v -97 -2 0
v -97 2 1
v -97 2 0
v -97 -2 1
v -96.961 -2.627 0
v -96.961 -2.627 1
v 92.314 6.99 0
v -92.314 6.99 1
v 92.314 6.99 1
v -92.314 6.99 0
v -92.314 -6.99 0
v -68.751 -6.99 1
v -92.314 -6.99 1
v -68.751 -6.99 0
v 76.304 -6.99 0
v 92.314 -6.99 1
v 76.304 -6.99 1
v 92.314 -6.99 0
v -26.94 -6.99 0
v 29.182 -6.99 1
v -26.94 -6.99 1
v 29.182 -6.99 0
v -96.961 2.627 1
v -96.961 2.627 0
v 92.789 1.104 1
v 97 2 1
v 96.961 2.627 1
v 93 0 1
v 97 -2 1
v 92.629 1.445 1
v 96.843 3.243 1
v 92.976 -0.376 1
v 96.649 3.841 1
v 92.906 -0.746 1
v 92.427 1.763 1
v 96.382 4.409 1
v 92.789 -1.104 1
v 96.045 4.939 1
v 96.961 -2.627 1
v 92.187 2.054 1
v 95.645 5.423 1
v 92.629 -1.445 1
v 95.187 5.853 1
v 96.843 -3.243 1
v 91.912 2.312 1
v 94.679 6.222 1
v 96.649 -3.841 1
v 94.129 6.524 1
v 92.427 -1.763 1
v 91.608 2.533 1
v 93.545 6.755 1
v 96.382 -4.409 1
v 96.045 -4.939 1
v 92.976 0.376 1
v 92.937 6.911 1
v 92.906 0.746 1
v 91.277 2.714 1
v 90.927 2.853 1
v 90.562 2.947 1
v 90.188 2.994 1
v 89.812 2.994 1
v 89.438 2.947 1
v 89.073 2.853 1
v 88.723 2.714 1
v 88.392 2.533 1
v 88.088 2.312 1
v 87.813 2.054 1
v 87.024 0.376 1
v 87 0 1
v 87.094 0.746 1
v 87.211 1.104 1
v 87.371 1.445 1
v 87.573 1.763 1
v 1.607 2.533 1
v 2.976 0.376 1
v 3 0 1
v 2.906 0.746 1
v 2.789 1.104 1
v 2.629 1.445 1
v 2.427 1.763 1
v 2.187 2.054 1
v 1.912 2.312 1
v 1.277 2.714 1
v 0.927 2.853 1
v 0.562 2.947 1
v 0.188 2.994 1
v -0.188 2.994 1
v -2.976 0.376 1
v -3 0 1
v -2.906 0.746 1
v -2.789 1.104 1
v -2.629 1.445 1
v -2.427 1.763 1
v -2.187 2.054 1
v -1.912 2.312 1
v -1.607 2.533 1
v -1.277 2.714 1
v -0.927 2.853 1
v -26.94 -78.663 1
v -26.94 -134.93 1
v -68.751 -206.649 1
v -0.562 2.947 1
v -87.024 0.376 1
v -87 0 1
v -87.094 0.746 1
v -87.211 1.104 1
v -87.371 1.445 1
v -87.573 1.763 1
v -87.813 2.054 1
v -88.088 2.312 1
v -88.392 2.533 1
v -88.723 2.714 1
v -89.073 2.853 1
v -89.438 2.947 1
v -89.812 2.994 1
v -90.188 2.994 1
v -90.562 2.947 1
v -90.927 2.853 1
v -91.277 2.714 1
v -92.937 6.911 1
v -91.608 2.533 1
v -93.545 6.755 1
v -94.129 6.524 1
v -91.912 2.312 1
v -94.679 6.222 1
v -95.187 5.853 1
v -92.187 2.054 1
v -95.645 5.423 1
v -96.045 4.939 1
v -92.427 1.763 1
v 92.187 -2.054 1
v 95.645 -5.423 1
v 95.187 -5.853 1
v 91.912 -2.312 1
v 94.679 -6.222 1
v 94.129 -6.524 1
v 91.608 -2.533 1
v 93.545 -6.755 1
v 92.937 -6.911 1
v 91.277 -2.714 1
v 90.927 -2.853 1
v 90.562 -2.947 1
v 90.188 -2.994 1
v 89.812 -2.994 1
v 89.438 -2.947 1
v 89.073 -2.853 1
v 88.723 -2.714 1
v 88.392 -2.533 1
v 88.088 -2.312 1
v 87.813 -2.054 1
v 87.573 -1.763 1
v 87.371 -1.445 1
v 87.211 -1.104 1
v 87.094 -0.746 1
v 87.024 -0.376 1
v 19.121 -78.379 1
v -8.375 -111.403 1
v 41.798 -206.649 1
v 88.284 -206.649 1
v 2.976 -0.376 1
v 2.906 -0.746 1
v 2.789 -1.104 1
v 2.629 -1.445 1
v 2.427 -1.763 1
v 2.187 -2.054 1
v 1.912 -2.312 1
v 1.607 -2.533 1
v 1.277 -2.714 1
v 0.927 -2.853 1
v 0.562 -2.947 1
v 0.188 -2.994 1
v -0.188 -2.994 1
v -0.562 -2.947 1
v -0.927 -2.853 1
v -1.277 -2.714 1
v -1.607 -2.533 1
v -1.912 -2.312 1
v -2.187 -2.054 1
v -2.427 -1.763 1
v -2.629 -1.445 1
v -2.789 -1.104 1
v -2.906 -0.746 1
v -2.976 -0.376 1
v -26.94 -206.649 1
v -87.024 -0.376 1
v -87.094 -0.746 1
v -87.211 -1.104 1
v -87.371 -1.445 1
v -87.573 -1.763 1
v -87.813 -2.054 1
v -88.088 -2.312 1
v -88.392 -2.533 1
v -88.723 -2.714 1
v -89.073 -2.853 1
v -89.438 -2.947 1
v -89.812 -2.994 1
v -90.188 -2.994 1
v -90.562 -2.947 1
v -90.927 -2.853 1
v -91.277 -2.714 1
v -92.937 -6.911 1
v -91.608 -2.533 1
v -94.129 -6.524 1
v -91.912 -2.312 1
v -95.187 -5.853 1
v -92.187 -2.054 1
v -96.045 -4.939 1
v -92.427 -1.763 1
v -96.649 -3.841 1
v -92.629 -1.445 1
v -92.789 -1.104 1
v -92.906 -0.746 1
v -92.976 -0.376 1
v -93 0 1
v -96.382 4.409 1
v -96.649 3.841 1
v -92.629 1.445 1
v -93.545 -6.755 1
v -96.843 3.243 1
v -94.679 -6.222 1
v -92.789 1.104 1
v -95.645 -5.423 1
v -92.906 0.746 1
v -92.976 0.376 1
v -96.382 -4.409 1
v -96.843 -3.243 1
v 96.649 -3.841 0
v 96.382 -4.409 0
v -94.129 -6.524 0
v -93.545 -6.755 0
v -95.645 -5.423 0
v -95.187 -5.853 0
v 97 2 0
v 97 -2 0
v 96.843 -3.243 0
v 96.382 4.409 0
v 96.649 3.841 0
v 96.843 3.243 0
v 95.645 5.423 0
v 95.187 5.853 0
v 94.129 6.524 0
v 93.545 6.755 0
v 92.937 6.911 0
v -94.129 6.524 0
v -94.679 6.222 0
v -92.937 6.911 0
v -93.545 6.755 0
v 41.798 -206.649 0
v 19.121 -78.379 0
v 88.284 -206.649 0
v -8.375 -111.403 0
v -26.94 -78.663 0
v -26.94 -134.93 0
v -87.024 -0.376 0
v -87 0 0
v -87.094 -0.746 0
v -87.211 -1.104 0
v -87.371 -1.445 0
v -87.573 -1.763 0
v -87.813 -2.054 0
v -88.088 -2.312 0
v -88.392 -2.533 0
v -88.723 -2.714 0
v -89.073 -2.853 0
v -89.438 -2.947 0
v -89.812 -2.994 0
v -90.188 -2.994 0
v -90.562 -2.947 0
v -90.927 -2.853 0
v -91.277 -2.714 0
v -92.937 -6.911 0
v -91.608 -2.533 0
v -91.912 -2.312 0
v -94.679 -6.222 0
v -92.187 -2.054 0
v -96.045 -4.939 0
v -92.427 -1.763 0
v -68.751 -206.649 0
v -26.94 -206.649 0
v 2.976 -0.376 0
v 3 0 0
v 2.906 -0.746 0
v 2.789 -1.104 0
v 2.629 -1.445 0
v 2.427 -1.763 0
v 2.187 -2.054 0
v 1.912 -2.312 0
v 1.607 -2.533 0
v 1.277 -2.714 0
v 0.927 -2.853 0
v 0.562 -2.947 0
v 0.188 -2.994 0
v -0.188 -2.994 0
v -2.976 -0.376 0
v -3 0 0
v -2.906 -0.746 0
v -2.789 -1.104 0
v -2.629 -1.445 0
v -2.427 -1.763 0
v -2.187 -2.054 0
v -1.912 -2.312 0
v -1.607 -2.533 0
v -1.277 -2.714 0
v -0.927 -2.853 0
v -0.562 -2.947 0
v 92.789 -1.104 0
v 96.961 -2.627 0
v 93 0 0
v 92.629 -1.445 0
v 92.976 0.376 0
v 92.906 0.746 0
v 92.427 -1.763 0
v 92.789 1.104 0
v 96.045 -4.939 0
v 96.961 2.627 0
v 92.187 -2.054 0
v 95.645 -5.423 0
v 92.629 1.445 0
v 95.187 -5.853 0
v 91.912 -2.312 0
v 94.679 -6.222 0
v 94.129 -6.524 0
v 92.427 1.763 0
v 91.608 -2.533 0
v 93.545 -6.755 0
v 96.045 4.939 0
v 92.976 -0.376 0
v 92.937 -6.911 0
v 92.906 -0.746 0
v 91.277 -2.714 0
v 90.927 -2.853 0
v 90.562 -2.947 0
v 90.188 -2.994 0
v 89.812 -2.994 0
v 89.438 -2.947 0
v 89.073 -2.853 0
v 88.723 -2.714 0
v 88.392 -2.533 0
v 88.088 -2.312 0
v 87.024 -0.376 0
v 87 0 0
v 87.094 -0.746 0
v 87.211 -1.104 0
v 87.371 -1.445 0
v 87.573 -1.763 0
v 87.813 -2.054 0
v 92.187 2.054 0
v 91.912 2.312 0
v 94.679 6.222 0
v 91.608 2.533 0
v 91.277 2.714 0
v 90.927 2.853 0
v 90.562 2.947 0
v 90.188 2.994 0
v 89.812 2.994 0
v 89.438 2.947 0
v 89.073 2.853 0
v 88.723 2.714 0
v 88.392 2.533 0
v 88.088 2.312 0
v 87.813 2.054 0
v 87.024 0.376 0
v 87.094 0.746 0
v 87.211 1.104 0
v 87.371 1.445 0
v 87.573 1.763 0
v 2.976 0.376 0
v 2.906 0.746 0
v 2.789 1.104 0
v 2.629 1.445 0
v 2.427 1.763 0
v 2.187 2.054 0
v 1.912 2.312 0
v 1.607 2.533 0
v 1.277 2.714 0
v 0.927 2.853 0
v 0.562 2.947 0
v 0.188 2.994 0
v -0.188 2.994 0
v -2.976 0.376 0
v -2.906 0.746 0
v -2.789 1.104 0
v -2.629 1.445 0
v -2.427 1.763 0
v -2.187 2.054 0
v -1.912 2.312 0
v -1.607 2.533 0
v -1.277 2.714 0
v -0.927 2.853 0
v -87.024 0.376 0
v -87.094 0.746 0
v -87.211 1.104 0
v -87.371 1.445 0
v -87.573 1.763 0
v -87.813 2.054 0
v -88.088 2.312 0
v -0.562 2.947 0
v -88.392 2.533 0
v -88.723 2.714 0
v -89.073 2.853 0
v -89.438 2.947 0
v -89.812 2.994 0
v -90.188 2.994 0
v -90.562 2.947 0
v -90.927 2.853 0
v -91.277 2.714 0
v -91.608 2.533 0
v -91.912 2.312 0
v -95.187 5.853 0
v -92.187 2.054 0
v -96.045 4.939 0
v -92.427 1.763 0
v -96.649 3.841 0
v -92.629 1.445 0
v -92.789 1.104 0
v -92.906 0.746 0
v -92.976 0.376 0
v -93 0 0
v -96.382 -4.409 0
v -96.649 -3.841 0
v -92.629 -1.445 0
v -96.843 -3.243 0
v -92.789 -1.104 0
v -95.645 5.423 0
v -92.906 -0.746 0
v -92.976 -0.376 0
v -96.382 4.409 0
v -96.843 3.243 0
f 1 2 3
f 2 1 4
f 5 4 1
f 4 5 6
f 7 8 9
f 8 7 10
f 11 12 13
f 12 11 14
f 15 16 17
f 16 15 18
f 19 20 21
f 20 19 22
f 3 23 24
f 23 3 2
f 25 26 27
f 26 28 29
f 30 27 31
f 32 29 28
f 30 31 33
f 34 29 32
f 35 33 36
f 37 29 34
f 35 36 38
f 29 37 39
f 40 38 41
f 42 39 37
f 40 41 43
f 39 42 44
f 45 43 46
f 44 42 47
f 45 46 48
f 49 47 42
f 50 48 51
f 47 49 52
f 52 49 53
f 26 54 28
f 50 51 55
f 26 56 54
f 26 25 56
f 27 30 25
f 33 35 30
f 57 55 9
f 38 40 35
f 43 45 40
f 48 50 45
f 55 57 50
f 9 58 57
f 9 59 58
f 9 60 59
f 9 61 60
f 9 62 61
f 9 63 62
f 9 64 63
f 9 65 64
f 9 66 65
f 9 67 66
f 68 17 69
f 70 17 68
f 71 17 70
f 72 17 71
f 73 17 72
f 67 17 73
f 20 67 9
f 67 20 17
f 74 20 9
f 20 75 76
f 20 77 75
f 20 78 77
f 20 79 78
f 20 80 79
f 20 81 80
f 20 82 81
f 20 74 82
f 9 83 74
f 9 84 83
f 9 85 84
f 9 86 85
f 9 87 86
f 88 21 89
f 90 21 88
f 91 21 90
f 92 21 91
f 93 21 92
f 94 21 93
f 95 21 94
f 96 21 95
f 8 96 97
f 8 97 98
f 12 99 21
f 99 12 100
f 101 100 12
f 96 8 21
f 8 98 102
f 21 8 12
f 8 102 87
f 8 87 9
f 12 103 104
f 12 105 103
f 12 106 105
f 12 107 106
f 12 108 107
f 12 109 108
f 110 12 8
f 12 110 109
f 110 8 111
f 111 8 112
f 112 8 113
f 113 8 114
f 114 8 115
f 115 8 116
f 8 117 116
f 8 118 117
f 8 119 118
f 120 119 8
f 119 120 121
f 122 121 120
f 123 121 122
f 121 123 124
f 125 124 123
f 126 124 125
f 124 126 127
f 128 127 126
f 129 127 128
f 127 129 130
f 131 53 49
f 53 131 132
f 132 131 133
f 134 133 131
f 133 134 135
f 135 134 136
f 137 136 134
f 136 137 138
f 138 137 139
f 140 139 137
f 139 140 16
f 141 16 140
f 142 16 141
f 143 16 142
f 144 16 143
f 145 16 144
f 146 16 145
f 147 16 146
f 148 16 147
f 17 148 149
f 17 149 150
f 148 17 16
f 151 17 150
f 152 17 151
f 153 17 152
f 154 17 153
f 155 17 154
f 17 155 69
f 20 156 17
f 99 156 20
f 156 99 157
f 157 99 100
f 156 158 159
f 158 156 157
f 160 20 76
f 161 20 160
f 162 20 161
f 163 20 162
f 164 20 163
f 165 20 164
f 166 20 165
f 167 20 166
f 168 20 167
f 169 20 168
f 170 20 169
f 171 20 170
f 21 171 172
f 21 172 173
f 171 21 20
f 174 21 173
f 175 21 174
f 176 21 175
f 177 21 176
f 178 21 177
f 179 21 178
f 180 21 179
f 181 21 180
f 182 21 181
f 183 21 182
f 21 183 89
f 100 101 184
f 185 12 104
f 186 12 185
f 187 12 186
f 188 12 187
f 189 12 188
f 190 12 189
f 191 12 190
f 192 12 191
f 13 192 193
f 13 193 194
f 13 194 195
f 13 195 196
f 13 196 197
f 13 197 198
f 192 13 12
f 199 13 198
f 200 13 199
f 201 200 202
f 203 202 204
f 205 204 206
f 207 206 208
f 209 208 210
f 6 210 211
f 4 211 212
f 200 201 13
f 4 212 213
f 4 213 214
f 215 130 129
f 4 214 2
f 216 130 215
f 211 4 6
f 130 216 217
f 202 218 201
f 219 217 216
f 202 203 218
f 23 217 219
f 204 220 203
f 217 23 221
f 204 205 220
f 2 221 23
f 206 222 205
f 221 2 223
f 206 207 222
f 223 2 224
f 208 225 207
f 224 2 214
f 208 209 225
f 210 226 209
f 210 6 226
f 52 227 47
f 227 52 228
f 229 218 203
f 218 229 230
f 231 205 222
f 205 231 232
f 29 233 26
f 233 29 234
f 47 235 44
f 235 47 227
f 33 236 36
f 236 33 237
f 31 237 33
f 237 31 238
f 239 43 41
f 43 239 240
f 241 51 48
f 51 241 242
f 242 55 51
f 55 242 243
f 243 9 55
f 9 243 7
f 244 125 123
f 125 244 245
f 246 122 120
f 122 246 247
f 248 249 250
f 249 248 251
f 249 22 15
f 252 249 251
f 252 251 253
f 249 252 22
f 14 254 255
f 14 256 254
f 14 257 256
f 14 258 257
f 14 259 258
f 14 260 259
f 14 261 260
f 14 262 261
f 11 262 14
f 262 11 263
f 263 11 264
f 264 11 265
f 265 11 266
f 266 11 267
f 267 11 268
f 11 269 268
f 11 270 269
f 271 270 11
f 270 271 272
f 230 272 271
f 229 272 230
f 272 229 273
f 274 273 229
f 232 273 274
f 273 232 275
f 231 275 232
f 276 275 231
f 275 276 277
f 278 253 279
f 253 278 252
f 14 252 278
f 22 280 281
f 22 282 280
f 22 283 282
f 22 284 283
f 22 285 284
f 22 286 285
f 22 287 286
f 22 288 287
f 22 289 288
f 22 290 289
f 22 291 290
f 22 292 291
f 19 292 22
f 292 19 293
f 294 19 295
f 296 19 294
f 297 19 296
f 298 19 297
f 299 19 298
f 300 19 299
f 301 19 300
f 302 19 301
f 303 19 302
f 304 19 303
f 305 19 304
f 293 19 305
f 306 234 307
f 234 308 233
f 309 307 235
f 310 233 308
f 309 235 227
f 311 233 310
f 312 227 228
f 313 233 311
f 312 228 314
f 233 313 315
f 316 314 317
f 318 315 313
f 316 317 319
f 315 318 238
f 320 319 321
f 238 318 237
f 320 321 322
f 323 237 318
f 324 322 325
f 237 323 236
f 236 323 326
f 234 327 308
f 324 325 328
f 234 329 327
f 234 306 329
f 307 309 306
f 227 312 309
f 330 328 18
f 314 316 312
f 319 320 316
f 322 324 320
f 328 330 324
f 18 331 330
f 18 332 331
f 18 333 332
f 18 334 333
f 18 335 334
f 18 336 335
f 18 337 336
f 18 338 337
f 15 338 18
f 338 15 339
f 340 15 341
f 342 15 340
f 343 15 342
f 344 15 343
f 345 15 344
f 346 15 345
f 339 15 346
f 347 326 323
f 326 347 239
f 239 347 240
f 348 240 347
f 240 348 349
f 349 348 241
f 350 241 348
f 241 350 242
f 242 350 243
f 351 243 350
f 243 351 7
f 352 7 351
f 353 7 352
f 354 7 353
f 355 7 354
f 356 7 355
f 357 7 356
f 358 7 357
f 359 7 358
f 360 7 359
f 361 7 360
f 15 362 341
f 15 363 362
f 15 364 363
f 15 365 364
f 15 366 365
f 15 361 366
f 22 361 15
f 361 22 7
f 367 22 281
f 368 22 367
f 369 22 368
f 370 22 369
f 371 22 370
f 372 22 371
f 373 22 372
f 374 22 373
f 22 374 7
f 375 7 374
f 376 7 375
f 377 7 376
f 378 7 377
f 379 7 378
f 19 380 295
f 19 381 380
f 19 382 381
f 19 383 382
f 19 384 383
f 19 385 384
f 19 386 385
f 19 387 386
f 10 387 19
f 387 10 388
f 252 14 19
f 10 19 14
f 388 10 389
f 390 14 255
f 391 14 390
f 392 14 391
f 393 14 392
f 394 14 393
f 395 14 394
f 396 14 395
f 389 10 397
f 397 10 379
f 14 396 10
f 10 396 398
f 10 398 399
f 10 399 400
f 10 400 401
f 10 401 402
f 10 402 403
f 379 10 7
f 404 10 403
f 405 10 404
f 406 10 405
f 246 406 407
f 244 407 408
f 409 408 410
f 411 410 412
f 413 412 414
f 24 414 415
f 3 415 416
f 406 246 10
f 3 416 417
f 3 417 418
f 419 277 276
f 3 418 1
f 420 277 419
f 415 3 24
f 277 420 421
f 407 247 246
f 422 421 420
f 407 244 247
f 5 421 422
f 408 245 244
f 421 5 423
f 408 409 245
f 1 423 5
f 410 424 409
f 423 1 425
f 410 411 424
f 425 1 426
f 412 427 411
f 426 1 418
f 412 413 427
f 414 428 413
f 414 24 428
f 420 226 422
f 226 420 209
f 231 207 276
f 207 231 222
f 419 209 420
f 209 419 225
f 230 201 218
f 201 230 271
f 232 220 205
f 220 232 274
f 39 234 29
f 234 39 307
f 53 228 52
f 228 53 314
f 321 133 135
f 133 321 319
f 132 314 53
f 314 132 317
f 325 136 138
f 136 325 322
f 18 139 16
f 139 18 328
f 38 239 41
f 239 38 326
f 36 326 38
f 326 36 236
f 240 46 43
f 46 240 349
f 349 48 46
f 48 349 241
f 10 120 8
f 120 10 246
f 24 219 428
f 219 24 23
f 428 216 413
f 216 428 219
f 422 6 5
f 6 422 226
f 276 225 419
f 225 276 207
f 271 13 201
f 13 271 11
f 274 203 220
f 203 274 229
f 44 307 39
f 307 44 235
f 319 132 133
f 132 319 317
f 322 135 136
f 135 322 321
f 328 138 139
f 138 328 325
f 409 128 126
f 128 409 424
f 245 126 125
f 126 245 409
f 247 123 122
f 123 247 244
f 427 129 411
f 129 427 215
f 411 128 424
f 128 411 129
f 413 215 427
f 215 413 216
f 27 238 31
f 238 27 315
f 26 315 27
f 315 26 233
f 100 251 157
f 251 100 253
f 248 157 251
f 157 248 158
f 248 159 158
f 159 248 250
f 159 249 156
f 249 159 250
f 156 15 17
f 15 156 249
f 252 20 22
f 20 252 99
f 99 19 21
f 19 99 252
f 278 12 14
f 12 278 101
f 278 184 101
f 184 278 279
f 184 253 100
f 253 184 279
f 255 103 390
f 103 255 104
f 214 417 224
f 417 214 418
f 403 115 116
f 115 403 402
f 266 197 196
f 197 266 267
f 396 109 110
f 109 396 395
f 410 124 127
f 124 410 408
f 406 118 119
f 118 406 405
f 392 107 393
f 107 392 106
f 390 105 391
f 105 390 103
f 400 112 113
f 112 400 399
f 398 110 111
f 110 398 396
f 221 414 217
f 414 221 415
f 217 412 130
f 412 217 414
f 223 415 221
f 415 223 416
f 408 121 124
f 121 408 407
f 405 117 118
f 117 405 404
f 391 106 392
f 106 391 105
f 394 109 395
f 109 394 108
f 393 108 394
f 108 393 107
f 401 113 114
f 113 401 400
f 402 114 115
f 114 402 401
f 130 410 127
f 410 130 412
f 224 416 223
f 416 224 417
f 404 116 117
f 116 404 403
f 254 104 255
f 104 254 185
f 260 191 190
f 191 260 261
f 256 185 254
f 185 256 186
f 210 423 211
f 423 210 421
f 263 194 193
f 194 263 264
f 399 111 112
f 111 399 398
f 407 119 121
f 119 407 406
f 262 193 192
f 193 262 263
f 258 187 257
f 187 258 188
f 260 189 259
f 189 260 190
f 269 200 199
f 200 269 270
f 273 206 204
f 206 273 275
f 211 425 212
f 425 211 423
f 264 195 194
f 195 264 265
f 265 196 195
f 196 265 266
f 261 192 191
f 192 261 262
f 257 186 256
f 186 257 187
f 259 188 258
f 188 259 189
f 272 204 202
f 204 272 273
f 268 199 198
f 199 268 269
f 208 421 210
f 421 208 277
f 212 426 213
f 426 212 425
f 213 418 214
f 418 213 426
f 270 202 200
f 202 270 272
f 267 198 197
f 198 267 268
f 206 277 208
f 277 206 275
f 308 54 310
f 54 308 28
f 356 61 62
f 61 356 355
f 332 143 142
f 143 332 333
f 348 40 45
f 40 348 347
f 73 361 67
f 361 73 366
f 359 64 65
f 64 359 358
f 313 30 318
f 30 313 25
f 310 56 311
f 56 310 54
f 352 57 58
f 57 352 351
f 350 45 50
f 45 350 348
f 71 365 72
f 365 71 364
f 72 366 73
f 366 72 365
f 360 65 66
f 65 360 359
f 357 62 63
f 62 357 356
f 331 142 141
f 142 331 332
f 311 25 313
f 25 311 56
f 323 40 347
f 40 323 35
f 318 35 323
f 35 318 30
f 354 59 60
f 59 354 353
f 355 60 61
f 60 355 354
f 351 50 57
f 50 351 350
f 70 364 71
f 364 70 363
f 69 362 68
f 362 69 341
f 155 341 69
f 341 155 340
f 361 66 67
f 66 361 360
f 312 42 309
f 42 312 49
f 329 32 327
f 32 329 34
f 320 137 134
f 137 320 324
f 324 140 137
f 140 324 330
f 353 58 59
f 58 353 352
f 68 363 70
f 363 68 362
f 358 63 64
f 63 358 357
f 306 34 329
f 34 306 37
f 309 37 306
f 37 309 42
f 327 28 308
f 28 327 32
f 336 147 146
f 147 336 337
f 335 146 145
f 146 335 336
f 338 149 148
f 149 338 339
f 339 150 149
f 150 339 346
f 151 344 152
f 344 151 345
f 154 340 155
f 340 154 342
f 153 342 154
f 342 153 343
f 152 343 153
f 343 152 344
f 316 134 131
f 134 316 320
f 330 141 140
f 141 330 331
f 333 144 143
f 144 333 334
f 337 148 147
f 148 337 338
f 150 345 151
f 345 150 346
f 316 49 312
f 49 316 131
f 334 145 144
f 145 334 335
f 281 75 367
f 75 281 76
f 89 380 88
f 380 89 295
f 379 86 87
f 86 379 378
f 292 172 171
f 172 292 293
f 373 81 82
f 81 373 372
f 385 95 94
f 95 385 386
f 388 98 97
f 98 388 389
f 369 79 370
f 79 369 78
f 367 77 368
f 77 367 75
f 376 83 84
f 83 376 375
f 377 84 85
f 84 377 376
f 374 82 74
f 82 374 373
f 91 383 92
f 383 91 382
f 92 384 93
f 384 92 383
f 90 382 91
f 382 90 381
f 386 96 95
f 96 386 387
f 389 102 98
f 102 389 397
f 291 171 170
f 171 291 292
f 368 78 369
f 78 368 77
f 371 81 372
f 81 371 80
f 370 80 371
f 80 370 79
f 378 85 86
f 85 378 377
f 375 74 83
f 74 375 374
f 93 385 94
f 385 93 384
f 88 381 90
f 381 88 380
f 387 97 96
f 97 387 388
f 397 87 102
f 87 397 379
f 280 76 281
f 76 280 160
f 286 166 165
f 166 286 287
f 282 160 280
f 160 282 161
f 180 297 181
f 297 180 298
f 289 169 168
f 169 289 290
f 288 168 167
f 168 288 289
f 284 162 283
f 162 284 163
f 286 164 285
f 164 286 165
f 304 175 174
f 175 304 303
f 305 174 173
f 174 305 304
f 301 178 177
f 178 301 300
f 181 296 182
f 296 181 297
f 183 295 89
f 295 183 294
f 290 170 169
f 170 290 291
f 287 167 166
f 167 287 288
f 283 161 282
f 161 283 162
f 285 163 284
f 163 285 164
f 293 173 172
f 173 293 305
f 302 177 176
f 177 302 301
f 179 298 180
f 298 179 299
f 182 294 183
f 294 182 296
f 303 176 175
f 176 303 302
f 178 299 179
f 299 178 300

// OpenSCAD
$fn = 50;


difference() {
	union() {
		translate(v = [0, 0, 0]) {
			rotate(a = [0, 0, 0]) {
				hull() {
					translate(v = [-92.0000000000, 2.0000000000, 0]) {
						rotate(a = [0, 0, 0]) {
							translate(v = [0, 0, 0]) {
								rotate(a = [0, 0, 0]) {
									cylinder(h = 1, r = 5);
								}
							}
						}
					}
					translate(v = [92.0000000000, 2.0000000000, 0]) {
						rotate(a = [0, 0, 0]) {
							translate(v = [0, 0, 0]) {
								rotate(a = [0, 0, 0]) {
									cylinder(h = 1, r = 5);
								}
							}
						}
					}
					translate(v = [-92.0000000000, -2.0000000000, 0]) {
						rotate(a = [0, 0, 0]) {
							translate(v = [0, 0, 0]) {
								rotate(a = [0, 0, 0]) {
									cylinder(h = 1, r = 5);
								}
							}
						}
					}
					translate(v = [92.0000000000, -2.0000000000, 0]) {
						rotate(a = [0, 0, 0]) {
							translate(v = [0, 0, 0]) {
								rotate(a = [0, 0, 0]) {
									cylinder(h = 1, r = 5);
								}
							}
						}
					}
				}
			}
		}
		translate(v = [0, 0, 0]) {
			rotate(a = [0, 0, 0]) {
				linear_extrude(height = 1) {
					text(font = "DejaVu Sans Mono:style=Bold", halign = "center", size = 209.0000000000, text = "K", valign = "top");
				}
			}
		}
	}
	union() {
		translate(v = [-90.0000000000, 0.0000000000, -125.0000000000]) {
			rotate(a = [0, 0, 0]) {
				cylinder(h = 250, r = 3.0000000000);
			}
		}
		translate(v = [90.0000000000, 0.0000000000, -125.0000000000]) {
			rotate(a = [0, 0, 0]) {
				cylinder(h = 250, r = 3.0000000000);
			}
		}
		translate(v = [90.0000000000, 0.0000000000, -125.0000000000]) {
			rotate(a = [0, 0, 0]) {
				cylinder(h = 250, r = 3.0000000000);
			}
		}
		translate(v = [0, 0, -125.0000000000]) {
			rotate(a = [0, 0, 0]) {
				cylinder(h = 250, r = 3.0000000000);
			}
		}
	}
}
